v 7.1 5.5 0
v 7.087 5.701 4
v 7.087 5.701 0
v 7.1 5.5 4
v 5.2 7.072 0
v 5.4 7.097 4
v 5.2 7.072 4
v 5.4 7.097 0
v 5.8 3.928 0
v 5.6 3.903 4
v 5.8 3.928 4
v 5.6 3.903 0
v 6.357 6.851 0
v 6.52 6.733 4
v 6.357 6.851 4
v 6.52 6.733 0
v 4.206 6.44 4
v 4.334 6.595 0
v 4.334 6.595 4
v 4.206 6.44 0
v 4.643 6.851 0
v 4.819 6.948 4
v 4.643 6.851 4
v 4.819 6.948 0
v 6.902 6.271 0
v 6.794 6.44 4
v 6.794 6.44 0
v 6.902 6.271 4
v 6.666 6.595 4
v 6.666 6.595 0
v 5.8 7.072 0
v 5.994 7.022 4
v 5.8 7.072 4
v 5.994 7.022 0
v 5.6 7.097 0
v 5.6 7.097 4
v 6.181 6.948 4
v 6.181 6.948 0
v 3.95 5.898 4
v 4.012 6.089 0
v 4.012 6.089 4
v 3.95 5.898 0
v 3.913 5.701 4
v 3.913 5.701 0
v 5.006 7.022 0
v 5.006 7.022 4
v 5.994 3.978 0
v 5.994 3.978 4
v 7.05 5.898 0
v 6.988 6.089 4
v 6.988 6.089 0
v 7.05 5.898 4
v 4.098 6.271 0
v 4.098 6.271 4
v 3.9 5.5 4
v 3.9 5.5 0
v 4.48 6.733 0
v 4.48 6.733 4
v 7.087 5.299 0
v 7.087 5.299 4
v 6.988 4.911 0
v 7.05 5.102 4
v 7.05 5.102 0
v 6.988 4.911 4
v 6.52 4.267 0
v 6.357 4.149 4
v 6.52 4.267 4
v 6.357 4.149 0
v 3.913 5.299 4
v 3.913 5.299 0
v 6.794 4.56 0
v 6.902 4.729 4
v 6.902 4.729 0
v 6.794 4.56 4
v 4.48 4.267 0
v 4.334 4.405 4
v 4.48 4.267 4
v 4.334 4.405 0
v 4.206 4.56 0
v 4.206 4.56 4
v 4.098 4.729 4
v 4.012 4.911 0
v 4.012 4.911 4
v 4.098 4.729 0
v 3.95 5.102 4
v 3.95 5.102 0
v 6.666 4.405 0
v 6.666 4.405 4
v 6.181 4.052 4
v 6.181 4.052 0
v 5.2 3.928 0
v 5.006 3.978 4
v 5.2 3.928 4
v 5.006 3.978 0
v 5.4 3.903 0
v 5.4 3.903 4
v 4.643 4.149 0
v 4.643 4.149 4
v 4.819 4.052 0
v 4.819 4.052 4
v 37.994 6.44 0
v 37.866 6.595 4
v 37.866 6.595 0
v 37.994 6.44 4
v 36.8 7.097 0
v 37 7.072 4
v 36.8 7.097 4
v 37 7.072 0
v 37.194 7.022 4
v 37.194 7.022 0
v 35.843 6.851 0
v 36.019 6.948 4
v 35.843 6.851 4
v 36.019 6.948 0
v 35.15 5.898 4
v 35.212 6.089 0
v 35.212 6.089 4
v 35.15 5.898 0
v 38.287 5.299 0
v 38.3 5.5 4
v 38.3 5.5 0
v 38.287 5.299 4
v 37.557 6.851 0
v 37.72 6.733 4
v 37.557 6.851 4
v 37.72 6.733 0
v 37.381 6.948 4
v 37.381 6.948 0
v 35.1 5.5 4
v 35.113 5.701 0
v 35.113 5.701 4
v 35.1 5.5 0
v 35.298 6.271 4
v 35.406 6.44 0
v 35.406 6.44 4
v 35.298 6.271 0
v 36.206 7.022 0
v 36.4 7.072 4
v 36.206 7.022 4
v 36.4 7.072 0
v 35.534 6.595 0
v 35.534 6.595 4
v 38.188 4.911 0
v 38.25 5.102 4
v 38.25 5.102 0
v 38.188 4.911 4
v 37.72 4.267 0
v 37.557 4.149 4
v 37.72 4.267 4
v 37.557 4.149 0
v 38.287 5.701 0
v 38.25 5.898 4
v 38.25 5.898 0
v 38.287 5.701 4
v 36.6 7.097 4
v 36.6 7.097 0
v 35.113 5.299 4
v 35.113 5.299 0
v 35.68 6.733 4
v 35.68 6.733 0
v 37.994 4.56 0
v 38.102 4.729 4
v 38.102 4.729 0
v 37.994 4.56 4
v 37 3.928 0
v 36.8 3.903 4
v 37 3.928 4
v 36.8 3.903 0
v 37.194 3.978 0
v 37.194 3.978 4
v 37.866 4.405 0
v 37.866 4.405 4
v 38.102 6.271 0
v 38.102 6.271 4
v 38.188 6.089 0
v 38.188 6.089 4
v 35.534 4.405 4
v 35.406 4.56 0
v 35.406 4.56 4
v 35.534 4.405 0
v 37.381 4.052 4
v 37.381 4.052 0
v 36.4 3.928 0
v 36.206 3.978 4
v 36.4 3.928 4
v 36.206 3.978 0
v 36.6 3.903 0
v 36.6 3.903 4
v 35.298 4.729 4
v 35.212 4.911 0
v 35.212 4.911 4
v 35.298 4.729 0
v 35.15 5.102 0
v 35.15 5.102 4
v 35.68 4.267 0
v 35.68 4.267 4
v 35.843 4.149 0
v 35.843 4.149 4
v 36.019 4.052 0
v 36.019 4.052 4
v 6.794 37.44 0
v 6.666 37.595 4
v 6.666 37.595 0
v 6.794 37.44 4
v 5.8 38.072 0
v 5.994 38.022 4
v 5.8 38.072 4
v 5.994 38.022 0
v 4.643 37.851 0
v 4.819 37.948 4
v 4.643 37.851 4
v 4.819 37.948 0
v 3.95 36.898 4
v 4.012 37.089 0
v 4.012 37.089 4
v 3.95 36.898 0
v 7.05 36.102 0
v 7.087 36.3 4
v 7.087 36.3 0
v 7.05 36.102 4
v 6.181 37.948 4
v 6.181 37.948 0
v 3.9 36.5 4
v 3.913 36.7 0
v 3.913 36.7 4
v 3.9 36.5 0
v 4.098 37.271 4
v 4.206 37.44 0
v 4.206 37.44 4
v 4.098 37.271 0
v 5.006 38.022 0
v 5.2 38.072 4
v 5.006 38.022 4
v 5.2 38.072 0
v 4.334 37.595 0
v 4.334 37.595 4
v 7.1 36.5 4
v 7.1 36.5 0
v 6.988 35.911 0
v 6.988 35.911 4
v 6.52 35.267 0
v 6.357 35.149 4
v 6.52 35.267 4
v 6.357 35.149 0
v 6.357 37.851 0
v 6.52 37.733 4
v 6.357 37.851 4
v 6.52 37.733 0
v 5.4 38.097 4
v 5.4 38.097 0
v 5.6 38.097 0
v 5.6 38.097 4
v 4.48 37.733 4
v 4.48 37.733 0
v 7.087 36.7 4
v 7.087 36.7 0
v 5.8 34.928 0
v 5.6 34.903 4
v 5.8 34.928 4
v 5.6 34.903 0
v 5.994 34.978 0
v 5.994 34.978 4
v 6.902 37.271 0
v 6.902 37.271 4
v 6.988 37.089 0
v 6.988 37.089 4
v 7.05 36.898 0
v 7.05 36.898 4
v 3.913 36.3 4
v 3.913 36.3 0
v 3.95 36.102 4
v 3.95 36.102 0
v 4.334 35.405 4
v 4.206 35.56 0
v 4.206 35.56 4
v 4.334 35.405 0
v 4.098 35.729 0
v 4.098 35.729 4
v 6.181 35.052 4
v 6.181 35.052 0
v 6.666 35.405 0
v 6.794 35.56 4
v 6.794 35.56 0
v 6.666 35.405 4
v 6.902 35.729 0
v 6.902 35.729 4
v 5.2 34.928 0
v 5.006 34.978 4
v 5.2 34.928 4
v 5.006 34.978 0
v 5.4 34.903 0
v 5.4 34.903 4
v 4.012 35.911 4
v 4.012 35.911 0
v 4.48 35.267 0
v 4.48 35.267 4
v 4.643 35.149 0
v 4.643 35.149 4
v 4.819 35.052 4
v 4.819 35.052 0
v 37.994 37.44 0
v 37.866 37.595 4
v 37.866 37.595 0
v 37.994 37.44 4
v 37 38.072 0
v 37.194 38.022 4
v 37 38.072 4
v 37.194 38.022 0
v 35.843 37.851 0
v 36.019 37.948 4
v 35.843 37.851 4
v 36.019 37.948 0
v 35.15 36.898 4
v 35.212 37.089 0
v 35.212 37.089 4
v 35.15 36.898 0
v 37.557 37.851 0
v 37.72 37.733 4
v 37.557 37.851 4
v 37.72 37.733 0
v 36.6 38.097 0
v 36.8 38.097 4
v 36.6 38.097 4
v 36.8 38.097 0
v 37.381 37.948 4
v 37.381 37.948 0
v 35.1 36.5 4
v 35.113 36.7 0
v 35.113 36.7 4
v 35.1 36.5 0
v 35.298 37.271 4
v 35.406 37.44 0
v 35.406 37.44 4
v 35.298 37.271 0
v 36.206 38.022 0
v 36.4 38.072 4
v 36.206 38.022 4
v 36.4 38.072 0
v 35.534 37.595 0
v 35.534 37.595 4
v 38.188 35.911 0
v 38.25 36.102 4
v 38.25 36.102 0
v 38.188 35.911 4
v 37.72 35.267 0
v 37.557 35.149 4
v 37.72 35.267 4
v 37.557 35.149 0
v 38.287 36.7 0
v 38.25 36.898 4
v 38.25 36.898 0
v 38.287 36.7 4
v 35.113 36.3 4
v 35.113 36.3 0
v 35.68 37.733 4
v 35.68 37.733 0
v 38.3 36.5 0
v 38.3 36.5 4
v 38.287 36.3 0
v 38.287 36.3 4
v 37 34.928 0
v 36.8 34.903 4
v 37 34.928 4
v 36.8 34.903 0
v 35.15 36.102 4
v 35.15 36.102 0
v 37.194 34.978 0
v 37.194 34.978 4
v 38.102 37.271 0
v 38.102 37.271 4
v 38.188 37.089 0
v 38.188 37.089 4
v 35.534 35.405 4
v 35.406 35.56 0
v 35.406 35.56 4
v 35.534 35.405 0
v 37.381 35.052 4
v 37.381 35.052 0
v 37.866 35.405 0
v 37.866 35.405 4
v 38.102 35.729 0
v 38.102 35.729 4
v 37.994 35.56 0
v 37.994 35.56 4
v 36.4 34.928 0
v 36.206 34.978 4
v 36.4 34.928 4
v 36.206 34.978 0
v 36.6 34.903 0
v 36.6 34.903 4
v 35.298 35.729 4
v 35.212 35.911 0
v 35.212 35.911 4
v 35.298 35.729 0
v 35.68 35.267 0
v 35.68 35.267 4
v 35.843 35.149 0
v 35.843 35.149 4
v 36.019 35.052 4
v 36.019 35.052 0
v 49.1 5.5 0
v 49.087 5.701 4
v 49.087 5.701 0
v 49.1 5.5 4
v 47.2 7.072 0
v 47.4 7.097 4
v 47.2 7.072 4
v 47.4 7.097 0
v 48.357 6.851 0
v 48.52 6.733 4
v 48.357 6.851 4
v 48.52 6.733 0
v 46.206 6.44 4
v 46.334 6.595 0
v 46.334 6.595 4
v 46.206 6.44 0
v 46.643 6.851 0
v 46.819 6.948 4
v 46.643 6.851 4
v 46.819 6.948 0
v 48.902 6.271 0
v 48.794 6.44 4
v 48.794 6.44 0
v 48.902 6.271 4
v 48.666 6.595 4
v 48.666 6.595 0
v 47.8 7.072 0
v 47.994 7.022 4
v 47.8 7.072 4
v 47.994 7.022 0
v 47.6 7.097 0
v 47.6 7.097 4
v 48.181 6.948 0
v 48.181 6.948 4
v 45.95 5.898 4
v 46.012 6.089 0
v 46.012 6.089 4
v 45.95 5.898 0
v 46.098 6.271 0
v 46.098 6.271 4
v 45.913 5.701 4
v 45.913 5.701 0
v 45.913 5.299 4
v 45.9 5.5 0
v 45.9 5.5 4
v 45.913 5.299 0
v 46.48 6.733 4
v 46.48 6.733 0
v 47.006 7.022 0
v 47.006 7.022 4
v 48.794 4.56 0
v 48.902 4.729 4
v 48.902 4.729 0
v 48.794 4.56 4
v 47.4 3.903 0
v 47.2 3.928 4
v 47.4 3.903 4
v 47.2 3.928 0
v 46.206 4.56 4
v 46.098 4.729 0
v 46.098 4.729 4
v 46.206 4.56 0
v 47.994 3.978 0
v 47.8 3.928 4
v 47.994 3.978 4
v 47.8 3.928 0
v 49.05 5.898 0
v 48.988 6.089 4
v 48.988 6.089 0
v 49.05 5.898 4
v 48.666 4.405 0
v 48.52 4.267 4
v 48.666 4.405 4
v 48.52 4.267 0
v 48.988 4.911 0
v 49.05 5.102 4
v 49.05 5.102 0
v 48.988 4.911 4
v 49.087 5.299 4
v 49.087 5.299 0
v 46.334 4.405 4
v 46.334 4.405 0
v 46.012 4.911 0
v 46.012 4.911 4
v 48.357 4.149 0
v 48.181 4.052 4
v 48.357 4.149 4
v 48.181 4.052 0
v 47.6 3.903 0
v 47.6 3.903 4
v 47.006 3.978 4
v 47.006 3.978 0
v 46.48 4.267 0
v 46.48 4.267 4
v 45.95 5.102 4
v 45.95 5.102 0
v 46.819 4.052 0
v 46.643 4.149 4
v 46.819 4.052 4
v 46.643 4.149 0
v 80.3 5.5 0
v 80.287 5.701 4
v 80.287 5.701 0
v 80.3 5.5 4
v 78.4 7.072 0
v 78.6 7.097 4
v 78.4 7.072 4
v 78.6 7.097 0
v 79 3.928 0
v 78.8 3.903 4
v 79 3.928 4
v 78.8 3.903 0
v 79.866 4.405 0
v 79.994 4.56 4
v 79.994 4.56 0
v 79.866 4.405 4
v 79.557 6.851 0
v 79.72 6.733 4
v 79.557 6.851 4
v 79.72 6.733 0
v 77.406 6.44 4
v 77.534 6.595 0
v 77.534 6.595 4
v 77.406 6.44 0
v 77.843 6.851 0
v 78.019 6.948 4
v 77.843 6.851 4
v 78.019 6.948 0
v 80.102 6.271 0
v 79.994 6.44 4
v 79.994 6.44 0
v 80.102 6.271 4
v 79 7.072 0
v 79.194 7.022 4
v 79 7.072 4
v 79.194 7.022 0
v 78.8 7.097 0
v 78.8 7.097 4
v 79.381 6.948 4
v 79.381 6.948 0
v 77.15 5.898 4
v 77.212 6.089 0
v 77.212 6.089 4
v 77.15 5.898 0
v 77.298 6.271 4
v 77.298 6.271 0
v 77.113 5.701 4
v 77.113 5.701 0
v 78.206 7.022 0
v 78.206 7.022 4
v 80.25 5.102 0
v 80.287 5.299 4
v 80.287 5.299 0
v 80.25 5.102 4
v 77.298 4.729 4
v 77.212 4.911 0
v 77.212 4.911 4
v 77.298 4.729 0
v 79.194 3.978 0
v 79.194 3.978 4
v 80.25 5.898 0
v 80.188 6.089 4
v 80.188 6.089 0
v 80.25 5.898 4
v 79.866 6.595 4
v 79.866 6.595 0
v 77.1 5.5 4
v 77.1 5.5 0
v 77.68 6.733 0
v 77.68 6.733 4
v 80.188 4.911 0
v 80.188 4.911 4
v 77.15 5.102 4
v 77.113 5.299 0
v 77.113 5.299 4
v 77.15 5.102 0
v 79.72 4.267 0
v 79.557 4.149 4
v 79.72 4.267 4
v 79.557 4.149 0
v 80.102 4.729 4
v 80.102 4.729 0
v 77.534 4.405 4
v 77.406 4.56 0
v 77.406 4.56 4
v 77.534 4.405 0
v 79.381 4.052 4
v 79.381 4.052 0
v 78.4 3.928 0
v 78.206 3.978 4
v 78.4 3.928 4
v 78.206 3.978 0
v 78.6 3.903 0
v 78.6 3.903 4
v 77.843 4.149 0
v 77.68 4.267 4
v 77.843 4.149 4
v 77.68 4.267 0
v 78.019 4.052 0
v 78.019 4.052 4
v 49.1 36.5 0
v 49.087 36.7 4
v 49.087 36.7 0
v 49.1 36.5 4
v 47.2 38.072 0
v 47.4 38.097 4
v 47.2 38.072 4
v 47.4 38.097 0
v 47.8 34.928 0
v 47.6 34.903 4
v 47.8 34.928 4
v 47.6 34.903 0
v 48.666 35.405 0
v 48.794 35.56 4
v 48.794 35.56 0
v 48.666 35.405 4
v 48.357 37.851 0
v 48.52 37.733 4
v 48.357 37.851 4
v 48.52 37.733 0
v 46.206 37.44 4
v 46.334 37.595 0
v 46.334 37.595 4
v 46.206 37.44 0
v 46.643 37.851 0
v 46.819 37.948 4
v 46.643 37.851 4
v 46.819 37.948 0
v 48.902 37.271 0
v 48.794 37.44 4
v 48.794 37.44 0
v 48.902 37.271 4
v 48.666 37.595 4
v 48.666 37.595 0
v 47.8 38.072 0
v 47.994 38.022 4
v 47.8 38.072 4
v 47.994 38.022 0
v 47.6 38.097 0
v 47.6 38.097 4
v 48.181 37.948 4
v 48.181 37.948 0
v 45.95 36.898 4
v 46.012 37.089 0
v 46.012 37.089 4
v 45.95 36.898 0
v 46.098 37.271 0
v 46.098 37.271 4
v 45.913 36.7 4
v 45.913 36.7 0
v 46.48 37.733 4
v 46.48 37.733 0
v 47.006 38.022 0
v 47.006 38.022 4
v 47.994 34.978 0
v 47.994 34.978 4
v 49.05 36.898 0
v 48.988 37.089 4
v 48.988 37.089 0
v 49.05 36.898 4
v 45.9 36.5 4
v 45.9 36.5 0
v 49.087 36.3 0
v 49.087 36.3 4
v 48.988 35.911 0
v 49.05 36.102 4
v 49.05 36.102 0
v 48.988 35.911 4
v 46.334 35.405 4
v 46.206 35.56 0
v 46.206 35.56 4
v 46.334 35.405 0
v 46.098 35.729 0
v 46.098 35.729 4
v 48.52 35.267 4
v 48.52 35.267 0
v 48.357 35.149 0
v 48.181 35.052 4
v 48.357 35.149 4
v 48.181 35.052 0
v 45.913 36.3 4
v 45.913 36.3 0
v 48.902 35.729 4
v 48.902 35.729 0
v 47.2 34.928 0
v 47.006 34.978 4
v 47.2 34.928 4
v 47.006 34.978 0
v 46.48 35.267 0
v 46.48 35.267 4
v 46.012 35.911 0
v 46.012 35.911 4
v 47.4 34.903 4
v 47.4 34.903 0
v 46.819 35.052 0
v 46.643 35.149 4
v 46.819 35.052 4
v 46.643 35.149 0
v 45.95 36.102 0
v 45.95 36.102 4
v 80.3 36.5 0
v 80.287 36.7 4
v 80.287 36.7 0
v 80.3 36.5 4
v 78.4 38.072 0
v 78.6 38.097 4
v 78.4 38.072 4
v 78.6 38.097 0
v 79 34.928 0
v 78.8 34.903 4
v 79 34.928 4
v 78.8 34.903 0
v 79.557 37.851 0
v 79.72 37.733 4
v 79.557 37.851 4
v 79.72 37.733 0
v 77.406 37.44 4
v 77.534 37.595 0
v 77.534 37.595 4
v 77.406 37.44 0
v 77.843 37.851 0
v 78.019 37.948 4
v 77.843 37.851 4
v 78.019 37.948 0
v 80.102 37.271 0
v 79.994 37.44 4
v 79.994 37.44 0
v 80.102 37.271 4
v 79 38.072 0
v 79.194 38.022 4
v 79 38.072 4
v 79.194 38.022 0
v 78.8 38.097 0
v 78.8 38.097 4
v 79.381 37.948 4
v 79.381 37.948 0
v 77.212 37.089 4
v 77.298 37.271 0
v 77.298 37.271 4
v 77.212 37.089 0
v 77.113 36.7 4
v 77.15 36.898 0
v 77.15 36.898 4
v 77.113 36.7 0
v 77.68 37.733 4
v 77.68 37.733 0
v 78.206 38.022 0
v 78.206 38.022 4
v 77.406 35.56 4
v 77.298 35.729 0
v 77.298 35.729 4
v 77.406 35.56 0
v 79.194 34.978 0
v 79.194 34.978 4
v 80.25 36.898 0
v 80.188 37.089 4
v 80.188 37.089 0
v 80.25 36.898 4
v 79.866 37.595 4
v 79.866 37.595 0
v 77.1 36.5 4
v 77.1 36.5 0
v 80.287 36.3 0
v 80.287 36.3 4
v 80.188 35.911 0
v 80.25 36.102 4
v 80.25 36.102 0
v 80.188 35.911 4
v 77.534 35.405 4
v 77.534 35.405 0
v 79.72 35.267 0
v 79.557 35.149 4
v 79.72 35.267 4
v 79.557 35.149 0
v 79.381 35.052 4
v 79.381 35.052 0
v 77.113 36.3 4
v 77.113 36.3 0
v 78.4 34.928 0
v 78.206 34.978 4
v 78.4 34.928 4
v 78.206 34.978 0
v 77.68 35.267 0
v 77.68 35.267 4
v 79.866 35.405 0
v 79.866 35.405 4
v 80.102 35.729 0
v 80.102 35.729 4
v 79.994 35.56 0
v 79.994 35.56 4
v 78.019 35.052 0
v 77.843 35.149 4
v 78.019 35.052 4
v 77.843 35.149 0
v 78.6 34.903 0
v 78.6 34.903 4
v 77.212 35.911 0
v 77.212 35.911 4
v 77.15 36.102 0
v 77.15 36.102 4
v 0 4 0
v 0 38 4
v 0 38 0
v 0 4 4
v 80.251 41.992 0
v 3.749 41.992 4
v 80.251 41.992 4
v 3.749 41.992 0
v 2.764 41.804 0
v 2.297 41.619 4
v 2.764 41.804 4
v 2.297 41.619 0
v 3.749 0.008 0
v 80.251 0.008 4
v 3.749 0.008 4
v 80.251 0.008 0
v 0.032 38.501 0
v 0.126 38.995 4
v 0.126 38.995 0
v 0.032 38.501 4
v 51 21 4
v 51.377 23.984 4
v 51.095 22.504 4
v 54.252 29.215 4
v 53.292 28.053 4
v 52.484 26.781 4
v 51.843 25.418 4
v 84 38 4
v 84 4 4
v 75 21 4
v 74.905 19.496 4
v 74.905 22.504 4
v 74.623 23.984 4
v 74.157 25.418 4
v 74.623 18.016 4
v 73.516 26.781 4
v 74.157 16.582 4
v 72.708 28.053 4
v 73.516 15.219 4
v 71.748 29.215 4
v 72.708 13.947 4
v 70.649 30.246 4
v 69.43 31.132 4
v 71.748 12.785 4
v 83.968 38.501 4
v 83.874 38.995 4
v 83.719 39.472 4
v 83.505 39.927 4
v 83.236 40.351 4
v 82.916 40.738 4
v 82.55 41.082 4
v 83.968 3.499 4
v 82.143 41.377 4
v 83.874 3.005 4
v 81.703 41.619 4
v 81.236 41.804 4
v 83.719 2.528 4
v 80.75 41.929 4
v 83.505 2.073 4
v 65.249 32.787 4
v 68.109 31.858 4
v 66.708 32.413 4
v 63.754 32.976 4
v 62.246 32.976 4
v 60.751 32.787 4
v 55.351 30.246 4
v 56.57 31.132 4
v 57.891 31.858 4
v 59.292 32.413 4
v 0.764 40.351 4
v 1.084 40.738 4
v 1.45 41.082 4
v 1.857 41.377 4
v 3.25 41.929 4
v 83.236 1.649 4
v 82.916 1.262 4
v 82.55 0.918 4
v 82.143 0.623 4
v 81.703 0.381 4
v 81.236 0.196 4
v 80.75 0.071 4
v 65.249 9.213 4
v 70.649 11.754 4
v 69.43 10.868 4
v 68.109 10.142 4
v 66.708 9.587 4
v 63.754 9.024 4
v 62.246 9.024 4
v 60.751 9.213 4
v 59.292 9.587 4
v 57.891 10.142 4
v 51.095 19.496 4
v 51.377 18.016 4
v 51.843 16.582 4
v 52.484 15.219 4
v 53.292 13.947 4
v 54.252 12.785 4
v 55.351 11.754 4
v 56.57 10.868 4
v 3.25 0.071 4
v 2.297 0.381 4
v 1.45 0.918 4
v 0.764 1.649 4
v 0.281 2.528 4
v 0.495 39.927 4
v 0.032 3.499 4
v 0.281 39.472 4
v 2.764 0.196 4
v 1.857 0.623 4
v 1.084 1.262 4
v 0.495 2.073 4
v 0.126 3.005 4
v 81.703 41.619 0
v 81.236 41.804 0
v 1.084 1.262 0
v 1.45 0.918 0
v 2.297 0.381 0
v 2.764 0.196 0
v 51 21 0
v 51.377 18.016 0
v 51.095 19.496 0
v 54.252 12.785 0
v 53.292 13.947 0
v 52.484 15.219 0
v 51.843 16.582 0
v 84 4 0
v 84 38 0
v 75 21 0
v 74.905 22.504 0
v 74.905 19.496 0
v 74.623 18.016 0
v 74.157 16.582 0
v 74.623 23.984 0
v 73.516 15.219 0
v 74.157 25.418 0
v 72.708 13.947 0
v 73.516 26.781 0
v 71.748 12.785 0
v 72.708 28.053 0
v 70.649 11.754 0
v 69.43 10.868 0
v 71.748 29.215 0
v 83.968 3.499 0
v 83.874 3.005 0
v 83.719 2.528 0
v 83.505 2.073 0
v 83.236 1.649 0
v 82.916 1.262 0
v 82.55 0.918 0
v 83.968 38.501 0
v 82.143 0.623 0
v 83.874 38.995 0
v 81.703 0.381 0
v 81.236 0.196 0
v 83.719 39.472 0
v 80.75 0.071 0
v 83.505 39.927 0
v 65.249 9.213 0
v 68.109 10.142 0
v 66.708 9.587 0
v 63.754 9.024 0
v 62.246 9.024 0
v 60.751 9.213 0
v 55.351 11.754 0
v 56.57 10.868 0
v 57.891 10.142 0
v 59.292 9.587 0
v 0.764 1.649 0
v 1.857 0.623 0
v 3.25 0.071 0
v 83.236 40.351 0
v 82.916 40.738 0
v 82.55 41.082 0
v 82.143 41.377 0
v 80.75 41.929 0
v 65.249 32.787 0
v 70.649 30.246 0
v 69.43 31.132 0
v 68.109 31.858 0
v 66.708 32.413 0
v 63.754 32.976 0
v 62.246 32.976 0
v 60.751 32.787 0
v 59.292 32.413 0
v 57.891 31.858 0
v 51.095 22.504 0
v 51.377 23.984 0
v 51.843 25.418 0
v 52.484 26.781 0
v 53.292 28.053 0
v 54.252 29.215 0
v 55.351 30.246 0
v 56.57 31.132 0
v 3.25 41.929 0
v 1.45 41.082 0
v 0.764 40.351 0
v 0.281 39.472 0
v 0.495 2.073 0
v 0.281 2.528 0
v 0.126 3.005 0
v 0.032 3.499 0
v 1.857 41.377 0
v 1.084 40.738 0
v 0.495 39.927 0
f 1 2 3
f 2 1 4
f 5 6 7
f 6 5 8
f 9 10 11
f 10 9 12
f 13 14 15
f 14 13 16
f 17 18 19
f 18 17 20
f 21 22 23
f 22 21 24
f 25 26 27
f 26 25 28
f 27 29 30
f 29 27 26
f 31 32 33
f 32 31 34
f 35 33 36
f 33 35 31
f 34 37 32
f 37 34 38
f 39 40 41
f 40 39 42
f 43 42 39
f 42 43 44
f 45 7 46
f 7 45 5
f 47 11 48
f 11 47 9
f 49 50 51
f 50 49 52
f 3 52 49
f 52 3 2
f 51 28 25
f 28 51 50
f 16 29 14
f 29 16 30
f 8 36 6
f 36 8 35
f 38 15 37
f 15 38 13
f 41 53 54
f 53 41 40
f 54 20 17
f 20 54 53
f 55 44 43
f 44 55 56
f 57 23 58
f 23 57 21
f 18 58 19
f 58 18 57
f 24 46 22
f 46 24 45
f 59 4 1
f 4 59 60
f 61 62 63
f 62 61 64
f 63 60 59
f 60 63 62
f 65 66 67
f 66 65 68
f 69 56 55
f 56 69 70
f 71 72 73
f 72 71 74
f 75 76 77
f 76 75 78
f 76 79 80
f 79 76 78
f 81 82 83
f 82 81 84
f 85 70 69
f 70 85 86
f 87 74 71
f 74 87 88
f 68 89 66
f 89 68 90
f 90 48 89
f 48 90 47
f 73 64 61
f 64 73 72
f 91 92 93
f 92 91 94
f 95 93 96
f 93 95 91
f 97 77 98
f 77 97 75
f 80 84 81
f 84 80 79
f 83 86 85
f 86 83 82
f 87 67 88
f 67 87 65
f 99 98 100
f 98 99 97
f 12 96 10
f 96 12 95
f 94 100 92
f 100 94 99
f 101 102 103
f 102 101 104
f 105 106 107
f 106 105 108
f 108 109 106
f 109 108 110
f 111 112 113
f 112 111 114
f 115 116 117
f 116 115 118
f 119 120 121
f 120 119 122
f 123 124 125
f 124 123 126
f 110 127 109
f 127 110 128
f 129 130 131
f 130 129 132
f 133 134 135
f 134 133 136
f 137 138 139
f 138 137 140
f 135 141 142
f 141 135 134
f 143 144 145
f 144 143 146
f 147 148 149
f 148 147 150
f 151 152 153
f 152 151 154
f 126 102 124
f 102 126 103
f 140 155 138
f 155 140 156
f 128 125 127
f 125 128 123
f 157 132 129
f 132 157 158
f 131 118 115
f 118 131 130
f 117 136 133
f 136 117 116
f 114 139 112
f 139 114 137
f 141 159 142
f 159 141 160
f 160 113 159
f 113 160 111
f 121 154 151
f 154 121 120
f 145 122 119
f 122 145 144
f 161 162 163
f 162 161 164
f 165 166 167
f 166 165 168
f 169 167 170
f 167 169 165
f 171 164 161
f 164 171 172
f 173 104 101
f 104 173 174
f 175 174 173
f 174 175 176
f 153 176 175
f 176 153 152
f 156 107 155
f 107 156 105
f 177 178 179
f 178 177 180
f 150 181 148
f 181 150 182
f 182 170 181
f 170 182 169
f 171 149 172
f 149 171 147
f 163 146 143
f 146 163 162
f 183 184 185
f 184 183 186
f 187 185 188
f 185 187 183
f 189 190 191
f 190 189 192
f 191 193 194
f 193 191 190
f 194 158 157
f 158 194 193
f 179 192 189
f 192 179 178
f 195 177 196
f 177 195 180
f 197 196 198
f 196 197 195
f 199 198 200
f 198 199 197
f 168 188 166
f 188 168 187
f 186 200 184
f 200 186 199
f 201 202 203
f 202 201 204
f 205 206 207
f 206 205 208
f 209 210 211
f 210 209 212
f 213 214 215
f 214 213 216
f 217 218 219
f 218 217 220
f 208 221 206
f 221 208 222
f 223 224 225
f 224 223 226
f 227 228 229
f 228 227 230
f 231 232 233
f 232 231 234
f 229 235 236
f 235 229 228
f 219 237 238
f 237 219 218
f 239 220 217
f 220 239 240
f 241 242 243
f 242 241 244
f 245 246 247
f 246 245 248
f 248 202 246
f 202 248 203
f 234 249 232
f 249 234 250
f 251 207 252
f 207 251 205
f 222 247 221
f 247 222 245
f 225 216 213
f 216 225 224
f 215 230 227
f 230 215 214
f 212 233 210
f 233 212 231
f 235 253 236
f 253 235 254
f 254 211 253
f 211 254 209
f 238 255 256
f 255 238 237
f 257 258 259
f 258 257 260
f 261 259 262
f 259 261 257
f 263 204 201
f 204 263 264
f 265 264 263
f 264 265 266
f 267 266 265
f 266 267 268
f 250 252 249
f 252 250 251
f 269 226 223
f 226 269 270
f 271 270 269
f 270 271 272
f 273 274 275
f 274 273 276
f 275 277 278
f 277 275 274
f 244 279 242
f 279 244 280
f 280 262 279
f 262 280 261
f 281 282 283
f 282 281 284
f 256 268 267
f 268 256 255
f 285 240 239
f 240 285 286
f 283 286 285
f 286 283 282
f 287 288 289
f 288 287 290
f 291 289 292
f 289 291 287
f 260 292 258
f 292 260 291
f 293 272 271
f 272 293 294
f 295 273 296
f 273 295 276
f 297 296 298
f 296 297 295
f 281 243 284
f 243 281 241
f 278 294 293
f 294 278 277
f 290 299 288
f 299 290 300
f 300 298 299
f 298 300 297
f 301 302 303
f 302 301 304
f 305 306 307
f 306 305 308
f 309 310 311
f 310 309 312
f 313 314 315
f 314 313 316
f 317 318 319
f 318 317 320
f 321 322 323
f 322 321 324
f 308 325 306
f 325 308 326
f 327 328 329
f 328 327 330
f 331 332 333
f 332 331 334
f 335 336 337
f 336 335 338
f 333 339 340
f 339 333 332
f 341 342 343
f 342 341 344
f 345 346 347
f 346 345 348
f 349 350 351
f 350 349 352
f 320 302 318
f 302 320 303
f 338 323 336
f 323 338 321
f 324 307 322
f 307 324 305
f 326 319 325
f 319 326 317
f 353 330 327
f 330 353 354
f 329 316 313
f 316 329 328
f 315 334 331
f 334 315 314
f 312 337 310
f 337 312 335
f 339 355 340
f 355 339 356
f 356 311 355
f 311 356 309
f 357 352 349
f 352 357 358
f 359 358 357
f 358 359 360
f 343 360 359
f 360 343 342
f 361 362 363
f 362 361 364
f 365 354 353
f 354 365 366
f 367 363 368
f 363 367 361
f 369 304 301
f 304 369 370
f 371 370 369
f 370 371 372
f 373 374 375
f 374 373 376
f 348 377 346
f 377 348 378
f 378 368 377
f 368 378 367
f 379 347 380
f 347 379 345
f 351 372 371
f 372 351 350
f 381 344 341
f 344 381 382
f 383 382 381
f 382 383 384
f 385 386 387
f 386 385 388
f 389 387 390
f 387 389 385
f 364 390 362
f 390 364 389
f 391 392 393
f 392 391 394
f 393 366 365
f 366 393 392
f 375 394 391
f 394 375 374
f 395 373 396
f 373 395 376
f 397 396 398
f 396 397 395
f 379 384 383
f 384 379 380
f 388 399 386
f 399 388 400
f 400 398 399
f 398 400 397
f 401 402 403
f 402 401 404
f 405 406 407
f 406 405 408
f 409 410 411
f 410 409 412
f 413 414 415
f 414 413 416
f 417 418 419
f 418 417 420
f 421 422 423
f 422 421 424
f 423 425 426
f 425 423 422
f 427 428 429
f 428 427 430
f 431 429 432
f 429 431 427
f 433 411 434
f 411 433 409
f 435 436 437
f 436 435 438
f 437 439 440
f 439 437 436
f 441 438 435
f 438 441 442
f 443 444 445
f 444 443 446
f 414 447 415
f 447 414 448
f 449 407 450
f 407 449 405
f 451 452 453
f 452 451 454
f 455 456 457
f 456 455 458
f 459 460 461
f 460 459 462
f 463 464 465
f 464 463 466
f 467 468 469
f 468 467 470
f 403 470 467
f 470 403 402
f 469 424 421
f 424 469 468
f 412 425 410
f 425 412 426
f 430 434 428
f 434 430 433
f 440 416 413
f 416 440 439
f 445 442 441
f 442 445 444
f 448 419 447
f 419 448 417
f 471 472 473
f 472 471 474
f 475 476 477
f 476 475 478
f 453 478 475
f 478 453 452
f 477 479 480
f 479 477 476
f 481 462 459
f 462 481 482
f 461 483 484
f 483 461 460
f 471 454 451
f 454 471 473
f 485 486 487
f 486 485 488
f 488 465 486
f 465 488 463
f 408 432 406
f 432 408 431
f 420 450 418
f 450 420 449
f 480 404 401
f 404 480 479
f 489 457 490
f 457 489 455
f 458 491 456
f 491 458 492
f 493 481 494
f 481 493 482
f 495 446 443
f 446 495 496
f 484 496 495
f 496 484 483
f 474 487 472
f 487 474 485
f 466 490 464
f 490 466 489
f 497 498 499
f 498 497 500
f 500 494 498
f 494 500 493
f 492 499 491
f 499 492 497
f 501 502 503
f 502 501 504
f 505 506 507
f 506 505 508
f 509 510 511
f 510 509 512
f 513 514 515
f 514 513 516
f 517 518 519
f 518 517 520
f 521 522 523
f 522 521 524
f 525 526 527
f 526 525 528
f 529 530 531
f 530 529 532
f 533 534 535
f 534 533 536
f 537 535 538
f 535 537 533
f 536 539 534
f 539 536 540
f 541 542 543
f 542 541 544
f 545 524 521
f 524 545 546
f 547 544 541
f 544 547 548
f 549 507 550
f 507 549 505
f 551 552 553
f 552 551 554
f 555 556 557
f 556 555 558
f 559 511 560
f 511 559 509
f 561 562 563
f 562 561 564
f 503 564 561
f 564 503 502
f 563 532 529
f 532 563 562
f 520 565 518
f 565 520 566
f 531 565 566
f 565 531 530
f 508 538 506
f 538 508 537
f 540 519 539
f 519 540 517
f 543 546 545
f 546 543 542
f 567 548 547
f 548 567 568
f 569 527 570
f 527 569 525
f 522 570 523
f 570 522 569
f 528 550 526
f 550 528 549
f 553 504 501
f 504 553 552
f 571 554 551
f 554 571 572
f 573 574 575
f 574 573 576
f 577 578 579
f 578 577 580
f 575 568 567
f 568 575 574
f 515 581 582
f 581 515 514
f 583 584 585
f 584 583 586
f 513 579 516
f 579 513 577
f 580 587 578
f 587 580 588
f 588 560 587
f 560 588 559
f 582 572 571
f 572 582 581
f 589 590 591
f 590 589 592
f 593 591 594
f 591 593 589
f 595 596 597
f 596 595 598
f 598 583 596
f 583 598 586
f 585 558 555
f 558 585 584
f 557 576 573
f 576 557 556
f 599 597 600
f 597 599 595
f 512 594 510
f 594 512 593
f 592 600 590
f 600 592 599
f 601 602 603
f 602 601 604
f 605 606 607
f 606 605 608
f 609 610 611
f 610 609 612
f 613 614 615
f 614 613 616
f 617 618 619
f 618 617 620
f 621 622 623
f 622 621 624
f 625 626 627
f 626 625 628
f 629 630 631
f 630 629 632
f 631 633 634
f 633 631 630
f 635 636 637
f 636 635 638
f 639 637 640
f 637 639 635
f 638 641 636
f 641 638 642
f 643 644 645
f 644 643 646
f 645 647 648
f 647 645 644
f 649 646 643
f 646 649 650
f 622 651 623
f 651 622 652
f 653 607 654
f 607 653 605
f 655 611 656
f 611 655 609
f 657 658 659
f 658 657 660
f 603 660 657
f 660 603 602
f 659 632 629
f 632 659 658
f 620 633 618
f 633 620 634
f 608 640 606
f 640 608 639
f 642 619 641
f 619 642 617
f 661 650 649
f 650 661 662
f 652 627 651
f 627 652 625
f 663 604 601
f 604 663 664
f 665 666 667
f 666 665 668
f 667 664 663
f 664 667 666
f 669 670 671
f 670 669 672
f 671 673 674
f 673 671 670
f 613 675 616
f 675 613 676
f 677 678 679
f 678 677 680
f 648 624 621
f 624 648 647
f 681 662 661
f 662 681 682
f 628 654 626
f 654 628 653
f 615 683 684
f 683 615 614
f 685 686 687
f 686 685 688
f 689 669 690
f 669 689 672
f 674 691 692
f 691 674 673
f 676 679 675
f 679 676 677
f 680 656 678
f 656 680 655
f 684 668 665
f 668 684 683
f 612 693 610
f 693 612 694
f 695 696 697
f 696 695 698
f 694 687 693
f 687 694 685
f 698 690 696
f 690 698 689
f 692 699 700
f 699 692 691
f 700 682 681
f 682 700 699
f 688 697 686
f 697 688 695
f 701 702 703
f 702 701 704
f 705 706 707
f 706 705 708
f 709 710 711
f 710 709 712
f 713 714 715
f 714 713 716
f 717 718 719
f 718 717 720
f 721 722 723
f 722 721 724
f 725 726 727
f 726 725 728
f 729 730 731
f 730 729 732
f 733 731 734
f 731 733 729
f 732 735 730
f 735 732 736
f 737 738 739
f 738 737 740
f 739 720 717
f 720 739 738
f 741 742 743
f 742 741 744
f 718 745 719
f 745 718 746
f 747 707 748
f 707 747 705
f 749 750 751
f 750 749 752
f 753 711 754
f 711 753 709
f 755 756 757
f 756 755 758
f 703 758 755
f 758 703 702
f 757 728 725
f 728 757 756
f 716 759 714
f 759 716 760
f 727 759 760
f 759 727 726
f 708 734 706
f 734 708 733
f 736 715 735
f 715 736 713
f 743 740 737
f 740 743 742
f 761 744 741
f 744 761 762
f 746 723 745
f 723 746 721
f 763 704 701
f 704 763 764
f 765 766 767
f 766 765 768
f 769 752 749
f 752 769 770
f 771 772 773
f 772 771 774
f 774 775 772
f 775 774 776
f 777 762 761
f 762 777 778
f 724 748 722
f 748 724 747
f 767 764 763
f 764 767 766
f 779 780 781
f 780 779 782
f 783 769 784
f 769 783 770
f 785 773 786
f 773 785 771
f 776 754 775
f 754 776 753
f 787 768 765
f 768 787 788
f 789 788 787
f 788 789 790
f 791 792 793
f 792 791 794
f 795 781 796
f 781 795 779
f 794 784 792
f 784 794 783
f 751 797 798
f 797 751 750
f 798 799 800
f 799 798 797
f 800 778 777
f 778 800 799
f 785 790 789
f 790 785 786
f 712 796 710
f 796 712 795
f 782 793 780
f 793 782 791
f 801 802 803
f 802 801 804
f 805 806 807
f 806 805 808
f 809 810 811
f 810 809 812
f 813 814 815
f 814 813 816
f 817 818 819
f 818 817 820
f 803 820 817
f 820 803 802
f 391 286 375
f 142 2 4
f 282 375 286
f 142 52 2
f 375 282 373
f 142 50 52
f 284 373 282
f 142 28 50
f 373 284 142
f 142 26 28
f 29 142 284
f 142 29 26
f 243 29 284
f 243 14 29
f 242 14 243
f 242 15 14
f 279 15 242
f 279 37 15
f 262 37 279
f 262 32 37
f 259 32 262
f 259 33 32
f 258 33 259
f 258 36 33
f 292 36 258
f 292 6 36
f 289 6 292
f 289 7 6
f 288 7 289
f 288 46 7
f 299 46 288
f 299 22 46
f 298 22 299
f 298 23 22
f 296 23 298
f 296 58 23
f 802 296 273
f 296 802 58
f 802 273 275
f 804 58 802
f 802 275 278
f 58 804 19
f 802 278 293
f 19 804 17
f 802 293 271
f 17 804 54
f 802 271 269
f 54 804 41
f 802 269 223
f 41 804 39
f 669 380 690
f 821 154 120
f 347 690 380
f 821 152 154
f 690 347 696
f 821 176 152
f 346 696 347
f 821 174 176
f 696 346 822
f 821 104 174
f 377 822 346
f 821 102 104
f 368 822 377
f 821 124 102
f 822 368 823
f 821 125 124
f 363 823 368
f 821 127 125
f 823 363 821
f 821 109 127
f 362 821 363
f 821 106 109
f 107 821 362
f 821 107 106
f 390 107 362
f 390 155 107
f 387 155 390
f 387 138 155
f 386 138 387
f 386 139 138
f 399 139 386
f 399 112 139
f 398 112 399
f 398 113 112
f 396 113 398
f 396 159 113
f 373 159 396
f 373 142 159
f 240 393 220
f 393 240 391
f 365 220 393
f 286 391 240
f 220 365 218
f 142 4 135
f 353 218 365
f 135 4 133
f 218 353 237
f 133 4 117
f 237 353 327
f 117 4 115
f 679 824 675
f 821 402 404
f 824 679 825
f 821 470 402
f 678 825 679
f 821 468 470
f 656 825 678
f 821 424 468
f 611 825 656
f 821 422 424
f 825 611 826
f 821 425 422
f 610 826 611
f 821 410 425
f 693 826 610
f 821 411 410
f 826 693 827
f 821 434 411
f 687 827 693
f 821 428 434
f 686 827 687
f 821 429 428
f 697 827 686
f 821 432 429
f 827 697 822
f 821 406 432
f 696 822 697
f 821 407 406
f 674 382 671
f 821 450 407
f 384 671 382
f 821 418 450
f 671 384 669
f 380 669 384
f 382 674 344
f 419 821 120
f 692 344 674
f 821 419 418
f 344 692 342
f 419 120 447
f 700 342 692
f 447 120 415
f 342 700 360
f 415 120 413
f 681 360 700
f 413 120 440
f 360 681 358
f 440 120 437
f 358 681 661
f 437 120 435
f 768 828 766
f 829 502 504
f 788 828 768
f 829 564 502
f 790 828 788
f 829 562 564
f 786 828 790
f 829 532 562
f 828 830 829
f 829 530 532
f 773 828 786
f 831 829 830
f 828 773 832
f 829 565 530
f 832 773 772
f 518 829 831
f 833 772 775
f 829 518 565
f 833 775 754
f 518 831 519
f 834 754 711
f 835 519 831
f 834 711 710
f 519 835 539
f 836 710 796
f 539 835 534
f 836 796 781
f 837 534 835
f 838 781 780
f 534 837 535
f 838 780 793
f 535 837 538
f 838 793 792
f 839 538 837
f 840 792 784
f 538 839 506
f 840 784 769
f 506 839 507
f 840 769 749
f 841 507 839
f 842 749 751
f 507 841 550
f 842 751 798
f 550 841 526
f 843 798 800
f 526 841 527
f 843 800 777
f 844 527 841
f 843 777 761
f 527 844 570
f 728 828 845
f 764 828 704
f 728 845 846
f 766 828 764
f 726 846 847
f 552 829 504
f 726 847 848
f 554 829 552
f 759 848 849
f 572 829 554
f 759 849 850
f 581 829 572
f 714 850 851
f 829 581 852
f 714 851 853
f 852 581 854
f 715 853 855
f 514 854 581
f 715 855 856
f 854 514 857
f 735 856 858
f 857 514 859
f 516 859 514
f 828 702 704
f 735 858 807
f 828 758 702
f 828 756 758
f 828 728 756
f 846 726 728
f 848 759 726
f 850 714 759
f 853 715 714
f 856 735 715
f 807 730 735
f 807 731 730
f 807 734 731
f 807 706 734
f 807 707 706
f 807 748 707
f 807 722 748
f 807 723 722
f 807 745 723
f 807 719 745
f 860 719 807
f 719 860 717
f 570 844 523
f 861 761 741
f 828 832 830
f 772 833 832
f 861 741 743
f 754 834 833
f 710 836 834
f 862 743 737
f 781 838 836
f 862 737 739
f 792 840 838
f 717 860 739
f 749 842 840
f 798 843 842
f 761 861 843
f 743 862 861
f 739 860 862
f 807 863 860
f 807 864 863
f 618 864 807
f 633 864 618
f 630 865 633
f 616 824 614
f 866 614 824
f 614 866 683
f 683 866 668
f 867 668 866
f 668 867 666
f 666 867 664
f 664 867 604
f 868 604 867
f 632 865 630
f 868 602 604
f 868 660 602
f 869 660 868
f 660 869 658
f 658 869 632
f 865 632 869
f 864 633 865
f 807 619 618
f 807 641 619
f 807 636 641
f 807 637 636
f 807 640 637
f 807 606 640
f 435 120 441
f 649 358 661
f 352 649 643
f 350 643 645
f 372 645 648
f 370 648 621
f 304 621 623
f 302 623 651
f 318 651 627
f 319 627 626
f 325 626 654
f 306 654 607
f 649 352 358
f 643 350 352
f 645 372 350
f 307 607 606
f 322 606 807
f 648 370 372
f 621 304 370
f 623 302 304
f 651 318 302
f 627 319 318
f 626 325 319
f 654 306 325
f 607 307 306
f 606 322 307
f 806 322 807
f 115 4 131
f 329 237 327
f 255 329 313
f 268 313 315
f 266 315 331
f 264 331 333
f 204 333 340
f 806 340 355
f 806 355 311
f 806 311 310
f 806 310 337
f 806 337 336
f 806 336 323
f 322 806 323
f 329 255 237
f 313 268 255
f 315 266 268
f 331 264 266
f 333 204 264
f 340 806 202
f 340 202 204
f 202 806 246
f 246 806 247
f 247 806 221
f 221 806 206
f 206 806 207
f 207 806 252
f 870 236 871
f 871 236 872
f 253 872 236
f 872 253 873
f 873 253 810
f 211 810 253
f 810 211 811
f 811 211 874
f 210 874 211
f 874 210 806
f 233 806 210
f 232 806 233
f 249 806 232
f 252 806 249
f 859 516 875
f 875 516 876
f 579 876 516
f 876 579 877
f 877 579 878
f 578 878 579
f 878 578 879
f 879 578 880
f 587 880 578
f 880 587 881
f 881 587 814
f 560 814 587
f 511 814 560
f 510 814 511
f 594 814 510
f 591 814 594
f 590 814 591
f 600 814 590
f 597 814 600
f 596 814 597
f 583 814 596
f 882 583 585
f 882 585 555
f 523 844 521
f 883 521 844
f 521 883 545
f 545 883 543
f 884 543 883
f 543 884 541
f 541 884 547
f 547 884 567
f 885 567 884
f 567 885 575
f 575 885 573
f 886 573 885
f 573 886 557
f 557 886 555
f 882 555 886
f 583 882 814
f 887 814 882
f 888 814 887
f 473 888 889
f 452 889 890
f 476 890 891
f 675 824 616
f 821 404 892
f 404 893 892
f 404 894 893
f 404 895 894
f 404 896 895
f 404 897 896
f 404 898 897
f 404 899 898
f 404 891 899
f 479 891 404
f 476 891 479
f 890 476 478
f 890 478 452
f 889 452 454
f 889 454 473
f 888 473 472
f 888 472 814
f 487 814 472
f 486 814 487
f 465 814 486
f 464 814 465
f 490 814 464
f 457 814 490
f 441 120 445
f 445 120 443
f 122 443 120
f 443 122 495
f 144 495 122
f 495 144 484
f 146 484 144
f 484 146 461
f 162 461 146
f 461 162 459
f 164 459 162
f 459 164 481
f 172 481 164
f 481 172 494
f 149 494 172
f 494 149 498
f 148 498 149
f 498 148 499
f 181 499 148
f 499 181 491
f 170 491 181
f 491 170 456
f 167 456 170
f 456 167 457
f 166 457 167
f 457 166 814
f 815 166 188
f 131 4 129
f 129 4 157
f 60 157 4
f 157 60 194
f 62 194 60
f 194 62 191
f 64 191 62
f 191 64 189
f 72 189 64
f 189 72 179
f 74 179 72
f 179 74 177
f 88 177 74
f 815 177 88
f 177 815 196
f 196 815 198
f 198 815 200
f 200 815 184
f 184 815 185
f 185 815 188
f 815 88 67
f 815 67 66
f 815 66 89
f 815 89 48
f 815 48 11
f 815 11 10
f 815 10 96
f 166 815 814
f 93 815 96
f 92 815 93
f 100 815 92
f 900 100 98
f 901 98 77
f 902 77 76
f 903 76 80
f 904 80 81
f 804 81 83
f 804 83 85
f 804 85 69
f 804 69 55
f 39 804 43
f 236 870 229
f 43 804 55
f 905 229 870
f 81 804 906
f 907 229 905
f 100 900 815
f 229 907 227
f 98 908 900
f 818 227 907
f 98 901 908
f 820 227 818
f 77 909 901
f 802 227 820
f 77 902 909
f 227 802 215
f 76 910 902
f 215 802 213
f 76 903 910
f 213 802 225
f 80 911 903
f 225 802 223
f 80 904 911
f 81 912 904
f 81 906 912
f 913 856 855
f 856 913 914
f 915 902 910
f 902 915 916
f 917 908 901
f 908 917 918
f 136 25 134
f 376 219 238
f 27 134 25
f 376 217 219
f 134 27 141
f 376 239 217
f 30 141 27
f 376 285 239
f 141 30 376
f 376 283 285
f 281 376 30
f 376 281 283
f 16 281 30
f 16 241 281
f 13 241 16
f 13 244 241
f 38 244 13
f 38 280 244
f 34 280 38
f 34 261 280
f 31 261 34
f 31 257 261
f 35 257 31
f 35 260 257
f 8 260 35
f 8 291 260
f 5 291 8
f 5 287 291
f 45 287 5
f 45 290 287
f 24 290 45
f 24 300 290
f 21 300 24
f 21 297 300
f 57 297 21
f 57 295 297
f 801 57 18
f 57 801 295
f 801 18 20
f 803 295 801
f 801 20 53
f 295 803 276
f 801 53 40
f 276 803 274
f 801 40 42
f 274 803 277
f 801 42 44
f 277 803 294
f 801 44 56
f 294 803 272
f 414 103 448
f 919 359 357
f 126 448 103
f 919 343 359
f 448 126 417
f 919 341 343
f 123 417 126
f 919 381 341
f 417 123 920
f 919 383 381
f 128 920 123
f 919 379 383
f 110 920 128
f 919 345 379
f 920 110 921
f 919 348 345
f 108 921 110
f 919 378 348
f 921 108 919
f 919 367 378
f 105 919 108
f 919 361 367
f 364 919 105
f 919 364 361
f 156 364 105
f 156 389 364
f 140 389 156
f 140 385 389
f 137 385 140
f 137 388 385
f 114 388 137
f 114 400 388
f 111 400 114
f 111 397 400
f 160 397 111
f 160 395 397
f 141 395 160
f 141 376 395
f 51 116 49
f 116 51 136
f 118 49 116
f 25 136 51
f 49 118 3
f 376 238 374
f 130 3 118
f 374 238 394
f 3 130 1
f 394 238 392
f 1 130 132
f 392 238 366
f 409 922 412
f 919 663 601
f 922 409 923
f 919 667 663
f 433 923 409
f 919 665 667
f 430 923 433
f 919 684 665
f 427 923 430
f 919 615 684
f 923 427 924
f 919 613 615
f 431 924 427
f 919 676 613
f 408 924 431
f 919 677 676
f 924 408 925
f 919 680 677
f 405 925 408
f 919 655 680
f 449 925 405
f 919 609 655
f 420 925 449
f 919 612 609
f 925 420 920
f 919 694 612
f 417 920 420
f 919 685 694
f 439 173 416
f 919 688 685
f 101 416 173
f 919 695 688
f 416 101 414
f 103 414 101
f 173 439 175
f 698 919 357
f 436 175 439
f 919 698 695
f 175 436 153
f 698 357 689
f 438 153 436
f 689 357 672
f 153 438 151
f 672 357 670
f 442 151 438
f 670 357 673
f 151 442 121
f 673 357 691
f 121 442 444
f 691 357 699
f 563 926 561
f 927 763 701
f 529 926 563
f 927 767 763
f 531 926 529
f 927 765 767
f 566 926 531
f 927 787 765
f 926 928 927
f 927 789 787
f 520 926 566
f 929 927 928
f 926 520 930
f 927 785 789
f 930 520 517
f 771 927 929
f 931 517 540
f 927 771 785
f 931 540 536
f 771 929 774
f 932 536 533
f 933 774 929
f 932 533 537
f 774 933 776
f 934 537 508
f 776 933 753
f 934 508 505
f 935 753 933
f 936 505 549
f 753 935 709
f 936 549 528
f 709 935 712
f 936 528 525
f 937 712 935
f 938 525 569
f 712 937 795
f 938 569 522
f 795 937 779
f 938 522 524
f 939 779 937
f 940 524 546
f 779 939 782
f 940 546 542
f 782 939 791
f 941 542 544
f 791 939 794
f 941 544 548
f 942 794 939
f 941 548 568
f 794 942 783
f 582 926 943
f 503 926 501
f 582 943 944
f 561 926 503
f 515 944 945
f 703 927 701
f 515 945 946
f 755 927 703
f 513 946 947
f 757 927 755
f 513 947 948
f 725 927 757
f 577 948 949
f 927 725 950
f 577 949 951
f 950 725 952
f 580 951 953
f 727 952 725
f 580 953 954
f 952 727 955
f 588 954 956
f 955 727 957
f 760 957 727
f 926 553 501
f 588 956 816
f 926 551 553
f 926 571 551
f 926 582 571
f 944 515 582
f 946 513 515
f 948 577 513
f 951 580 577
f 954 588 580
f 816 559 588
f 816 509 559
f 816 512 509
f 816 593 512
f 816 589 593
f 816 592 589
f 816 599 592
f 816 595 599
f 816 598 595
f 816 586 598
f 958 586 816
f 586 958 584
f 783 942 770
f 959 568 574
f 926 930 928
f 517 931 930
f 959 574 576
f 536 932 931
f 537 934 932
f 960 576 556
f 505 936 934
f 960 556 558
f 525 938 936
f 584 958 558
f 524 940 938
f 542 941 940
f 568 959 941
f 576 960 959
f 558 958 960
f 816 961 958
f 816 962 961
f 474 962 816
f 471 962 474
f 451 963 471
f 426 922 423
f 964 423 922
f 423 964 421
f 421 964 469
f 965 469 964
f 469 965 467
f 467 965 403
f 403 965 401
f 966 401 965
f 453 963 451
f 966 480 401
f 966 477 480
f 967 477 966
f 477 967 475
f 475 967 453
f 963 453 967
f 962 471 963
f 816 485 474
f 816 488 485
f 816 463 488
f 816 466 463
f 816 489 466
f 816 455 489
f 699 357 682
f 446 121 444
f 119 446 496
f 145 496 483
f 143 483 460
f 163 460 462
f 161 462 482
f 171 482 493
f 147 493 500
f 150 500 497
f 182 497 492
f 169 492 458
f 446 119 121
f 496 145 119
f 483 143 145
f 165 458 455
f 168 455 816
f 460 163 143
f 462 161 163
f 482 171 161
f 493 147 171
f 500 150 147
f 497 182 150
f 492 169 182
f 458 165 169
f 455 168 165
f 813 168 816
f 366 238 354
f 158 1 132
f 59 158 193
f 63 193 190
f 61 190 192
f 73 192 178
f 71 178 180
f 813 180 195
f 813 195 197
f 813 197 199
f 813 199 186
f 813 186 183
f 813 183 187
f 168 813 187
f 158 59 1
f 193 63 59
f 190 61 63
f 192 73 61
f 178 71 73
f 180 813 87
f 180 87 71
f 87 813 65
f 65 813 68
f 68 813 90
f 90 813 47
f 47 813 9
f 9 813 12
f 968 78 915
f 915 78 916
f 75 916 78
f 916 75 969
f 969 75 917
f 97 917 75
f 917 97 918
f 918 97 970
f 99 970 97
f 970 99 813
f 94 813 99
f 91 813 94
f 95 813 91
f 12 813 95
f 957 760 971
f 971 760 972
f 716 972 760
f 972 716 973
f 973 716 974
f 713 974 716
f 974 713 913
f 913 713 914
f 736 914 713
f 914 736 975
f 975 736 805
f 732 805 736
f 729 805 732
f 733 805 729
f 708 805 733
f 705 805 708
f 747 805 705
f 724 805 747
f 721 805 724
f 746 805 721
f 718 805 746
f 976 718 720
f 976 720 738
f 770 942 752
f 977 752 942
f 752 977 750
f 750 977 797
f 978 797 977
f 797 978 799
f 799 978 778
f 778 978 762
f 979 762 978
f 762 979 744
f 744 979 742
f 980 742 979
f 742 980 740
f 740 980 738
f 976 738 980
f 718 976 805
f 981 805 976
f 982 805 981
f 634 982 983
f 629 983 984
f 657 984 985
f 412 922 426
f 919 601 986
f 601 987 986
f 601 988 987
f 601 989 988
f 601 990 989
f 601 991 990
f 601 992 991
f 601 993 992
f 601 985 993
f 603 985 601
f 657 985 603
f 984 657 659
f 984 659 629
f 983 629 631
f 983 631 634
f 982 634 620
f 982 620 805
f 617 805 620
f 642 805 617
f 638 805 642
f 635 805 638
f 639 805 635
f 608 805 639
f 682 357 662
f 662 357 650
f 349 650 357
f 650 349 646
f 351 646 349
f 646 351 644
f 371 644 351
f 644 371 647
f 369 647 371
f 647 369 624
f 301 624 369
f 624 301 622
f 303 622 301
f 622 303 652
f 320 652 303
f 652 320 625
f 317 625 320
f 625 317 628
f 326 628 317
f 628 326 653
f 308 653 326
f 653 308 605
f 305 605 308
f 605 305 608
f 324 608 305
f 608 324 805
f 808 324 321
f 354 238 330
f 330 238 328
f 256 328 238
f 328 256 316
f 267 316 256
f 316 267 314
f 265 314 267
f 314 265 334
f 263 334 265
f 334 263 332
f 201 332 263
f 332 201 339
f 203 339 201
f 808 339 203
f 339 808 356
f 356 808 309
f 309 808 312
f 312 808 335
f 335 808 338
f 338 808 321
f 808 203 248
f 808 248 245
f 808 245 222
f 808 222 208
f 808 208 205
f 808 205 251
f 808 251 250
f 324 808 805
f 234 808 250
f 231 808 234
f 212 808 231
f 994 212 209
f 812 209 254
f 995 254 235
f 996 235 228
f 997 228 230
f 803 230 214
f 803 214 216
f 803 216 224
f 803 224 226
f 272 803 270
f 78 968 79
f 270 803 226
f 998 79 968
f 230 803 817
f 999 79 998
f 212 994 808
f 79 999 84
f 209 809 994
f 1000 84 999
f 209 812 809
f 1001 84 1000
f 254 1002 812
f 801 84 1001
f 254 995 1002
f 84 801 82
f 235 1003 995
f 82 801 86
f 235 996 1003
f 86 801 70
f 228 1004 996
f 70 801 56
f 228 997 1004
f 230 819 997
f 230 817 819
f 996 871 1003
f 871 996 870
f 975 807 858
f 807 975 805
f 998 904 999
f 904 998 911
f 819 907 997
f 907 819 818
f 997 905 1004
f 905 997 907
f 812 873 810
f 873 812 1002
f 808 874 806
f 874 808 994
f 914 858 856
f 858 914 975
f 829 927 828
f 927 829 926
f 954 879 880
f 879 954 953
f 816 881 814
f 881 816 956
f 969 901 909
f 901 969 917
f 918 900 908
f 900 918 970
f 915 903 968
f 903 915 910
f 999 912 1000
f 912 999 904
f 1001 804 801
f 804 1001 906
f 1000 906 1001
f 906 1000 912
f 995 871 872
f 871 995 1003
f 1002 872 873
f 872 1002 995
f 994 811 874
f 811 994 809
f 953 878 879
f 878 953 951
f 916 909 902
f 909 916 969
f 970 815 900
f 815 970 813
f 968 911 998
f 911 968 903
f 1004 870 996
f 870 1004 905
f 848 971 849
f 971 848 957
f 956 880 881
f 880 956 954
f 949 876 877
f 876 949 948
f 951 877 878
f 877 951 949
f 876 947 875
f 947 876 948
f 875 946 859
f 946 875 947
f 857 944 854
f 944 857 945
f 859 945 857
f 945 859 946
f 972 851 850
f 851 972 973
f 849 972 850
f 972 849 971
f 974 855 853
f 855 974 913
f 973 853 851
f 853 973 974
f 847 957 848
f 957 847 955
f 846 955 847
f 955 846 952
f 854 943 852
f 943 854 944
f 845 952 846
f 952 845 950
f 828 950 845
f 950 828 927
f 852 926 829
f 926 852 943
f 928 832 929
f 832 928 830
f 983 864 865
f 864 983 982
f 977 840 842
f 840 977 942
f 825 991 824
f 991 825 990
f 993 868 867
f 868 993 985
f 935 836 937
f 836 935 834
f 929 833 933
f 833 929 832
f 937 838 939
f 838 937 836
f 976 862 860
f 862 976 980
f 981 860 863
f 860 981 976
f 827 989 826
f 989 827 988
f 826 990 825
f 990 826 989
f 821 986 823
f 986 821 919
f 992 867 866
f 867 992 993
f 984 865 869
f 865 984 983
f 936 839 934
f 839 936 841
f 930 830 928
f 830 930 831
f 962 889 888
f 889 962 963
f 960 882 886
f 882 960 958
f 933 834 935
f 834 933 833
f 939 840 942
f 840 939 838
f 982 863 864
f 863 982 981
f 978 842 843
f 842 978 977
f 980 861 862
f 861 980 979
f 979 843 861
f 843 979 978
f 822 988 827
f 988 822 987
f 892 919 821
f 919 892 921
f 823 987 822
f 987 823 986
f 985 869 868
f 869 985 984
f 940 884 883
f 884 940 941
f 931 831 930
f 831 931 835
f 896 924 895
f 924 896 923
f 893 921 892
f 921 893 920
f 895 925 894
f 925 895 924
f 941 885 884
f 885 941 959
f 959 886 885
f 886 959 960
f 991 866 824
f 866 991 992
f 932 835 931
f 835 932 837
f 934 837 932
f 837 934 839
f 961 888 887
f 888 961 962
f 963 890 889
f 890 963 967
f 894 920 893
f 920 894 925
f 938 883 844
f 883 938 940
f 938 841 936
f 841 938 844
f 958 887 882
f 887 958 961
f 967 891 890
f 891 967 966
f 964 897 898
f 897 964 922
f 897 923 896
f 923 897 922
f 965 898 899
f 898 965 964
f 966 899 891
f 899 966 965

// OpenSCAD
l = 84;
w = 42;

difference() {

    // base
    hull() {
       translate([4,4,0]) cylinder($fn=50, r=4,h=4);
       translate([4,w-4,0]) cylinder($fn=50, r=4,h=4);
        translate([l-4,4,0]) cylinder($fn=50, r=4,h=4);
       translate([l-4,w-4,0]) cylinder($fn=50, r=4,h=4);
    }

    for (i = [0,w]) {
        translate([i+ 3.9+1.6,3.9+1.6,-1]) cylinder($fn=50, r=1.6,h=6);
        translate([i+ 3.9+1.6+ 28 +3.2, 3.9+1.6,-1]) cylinder($fn=50, r=1.6,h=6);
        
        translate([i+ 3.9 + 1.6, w-3.9-1.6, -1]) cylinder($fn=50, r=1.6,h=6);
        translate([i+ 3.9+1.6+ 28 +3.2, w-3.9-1.6, -1]) cylinder($fn=50, r=1.6,h=6);
    }
    
    translate([l-w+w/2, w/2, -1])cylinder($fn=50, r=12,h=6);  
}
//color("red") cube([l,w,2]);
